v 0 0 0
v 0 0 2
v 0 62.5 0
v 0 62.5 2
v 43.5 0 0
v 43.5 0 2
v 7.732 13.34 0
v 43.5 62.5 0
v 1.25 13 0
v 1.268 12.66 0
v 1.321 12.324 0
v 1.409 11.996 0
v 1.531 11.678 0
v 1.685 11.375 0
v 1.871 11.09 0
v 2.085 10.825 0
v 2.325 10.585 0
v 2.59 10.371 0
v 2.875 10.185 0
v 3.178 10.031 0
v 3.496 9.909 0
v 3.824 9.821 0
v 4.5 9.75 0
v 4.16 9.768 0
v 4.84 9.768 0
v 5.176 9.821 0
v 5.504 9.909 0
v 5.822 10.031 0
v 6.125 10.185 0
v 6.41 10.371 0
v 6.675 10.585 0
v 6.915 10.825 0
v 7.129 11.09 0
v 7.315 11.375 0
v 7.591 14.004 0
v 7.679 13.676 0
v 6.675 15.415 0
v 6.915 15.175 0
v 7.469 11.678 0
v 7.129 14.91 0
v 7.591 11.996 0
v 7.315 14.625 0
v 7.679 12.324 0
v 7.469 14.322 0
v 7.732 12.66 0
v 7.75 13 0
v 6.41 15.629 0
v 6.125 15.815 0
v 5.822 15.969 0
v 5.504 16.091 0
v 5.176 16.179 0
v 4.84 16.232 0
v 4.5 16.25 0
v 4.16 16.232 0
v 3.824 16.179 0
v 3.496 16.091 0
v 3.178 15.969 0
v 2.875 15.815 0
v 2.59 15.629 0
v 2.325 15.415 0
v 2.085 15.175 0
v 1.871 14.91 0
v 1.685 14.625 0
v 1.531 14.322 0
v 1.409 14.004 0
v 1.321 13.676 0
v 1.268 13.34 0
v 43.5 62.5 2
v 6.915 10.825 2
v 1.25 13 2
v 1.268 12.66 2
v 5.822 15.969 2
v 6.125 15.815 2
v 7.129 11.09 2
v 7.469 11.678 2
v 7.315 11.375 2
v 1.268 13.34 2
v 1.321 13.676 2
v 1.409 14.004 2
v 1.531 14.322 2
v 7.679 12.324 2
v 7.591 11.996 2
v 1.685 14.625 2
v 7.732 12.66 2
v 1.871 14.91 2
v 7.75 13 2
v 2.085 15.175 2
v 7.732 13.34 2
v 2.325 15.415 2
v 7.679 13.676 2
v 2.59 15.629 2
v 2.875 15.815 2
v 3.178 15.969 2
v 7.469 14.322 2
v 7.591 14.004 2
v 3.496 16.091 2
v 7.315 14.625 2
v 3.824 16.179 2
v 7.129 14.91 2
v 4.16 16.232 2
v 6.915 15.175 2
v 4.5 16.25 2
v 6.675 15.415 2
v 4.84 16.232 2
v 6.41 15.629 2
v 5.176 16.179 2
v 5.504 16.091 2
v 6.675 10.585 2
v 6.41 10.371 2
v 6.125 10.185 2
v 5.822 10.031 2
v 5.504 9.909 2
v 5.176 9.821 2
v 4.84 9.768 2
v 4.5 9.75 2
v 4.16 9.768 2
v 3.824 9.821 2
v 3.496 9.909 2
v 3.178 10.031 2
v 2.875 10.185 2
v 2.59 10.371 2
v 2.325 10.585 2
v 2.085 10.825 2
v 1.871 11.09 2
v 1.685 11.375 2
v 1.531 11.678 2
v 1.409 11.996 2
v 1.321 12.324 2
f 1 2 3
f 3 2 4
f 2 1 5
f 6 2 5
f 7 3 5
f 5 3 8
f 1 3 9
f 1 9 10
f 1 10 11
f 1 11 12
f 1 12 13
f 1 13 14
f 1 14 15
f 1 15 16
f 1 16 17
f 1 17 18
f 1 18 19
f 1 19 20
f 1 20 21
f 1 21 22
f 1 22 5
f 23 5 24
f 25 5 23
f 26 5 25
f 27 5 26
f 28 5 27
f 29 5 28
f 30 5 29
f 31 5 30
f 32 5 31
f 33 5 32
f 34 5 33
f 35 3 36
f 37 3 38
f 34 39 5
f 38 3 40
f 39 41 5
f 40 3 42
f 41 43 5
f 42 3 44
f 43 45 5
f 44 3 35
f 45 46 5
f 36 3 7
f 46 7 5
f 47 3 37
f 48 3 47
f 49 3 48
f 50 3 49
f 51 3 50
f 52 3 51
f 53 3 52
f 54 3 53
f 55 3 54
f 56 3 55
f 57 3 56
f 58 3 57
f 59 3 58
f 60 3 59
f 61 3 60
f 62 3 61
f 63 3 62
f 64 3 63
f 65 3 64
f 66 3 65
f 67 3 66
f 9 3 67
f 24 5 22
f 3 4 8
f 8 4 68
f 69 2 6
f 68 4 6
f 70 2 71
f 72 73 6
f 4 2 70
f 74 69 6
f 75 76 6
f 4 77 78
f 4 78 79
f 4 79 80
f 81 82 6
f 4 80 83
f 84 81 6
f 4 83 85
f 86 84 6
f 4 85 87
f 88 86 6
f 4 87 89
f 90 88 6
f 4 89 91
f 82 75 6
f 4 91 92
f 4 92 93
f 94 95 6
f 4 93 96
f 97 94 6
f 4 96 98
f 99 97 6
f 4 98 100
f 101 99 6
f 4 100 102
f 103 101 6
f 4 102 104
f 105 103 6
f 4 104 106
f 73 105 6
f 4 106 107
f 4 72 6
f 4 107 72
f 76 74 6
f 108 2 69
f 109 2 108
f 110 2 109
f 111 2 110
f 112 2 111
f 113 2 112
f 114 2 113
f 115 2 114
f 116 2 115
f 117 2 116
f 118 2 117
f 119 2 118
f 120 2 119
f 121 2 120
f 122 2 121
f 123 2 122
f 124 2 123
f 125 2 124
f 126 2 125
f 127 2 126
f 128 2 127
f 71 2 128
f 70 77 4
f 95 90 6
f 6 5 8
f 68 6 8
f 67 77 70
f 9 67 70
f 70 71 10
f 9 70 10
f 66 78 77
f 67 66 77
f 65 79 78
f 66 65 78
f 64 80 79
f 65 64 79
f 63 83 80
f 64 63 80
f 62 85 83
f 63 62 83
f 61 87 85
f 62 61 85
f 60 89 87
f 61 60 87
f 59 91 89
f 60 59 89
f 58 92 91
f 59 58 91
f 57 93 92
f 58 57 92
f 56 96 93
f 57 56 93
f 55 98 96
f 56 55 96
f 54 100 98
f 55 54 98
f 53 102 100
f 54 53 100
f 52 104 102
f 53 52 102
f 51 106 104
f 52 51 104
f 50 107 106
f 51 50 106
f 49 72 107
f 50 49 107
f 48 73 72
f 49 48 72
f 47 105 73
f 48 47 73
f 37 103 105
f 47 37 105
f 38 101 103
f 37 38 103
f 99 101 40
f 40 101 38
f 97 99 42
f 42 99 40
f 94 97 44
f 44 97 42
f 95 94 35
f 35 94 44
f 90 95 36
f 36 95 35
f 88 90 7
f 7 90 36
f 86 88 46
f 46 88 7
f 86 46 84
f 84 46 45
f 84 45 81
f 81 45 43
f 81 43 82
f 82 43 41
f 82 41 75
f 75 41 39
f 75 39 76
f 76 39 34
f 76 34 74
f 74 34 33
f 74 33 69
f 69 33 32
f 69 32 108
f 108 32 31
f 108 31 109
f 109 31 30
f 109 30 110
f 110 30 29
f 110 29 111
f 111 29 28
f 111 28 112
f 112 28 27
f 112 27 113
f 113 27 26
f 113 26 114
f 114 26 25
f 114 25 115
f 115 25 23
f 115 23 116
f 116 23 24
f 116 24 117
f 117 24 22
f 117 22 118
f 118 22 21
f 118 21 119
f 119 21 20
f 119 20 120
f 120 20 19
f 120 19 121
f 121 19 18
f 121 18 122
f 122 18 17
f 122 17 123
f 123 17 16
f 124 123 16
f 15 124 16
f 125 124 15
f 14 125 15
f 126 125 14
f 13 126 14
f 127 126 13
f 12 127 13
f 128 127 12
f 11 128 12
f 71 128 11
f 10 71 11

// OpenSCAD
//
// Thermal imaging camera Side 1 (5.5x2.1mm connector)
//

difference() {
  // Bottom plate
  cube([43.5, 62.5, 2]);

  // Hole for barrel jack
  translate([4.5, 13, 1]) {
    cylinder(h=4, d=6.5, center=true, $fn=60);
  }
}
